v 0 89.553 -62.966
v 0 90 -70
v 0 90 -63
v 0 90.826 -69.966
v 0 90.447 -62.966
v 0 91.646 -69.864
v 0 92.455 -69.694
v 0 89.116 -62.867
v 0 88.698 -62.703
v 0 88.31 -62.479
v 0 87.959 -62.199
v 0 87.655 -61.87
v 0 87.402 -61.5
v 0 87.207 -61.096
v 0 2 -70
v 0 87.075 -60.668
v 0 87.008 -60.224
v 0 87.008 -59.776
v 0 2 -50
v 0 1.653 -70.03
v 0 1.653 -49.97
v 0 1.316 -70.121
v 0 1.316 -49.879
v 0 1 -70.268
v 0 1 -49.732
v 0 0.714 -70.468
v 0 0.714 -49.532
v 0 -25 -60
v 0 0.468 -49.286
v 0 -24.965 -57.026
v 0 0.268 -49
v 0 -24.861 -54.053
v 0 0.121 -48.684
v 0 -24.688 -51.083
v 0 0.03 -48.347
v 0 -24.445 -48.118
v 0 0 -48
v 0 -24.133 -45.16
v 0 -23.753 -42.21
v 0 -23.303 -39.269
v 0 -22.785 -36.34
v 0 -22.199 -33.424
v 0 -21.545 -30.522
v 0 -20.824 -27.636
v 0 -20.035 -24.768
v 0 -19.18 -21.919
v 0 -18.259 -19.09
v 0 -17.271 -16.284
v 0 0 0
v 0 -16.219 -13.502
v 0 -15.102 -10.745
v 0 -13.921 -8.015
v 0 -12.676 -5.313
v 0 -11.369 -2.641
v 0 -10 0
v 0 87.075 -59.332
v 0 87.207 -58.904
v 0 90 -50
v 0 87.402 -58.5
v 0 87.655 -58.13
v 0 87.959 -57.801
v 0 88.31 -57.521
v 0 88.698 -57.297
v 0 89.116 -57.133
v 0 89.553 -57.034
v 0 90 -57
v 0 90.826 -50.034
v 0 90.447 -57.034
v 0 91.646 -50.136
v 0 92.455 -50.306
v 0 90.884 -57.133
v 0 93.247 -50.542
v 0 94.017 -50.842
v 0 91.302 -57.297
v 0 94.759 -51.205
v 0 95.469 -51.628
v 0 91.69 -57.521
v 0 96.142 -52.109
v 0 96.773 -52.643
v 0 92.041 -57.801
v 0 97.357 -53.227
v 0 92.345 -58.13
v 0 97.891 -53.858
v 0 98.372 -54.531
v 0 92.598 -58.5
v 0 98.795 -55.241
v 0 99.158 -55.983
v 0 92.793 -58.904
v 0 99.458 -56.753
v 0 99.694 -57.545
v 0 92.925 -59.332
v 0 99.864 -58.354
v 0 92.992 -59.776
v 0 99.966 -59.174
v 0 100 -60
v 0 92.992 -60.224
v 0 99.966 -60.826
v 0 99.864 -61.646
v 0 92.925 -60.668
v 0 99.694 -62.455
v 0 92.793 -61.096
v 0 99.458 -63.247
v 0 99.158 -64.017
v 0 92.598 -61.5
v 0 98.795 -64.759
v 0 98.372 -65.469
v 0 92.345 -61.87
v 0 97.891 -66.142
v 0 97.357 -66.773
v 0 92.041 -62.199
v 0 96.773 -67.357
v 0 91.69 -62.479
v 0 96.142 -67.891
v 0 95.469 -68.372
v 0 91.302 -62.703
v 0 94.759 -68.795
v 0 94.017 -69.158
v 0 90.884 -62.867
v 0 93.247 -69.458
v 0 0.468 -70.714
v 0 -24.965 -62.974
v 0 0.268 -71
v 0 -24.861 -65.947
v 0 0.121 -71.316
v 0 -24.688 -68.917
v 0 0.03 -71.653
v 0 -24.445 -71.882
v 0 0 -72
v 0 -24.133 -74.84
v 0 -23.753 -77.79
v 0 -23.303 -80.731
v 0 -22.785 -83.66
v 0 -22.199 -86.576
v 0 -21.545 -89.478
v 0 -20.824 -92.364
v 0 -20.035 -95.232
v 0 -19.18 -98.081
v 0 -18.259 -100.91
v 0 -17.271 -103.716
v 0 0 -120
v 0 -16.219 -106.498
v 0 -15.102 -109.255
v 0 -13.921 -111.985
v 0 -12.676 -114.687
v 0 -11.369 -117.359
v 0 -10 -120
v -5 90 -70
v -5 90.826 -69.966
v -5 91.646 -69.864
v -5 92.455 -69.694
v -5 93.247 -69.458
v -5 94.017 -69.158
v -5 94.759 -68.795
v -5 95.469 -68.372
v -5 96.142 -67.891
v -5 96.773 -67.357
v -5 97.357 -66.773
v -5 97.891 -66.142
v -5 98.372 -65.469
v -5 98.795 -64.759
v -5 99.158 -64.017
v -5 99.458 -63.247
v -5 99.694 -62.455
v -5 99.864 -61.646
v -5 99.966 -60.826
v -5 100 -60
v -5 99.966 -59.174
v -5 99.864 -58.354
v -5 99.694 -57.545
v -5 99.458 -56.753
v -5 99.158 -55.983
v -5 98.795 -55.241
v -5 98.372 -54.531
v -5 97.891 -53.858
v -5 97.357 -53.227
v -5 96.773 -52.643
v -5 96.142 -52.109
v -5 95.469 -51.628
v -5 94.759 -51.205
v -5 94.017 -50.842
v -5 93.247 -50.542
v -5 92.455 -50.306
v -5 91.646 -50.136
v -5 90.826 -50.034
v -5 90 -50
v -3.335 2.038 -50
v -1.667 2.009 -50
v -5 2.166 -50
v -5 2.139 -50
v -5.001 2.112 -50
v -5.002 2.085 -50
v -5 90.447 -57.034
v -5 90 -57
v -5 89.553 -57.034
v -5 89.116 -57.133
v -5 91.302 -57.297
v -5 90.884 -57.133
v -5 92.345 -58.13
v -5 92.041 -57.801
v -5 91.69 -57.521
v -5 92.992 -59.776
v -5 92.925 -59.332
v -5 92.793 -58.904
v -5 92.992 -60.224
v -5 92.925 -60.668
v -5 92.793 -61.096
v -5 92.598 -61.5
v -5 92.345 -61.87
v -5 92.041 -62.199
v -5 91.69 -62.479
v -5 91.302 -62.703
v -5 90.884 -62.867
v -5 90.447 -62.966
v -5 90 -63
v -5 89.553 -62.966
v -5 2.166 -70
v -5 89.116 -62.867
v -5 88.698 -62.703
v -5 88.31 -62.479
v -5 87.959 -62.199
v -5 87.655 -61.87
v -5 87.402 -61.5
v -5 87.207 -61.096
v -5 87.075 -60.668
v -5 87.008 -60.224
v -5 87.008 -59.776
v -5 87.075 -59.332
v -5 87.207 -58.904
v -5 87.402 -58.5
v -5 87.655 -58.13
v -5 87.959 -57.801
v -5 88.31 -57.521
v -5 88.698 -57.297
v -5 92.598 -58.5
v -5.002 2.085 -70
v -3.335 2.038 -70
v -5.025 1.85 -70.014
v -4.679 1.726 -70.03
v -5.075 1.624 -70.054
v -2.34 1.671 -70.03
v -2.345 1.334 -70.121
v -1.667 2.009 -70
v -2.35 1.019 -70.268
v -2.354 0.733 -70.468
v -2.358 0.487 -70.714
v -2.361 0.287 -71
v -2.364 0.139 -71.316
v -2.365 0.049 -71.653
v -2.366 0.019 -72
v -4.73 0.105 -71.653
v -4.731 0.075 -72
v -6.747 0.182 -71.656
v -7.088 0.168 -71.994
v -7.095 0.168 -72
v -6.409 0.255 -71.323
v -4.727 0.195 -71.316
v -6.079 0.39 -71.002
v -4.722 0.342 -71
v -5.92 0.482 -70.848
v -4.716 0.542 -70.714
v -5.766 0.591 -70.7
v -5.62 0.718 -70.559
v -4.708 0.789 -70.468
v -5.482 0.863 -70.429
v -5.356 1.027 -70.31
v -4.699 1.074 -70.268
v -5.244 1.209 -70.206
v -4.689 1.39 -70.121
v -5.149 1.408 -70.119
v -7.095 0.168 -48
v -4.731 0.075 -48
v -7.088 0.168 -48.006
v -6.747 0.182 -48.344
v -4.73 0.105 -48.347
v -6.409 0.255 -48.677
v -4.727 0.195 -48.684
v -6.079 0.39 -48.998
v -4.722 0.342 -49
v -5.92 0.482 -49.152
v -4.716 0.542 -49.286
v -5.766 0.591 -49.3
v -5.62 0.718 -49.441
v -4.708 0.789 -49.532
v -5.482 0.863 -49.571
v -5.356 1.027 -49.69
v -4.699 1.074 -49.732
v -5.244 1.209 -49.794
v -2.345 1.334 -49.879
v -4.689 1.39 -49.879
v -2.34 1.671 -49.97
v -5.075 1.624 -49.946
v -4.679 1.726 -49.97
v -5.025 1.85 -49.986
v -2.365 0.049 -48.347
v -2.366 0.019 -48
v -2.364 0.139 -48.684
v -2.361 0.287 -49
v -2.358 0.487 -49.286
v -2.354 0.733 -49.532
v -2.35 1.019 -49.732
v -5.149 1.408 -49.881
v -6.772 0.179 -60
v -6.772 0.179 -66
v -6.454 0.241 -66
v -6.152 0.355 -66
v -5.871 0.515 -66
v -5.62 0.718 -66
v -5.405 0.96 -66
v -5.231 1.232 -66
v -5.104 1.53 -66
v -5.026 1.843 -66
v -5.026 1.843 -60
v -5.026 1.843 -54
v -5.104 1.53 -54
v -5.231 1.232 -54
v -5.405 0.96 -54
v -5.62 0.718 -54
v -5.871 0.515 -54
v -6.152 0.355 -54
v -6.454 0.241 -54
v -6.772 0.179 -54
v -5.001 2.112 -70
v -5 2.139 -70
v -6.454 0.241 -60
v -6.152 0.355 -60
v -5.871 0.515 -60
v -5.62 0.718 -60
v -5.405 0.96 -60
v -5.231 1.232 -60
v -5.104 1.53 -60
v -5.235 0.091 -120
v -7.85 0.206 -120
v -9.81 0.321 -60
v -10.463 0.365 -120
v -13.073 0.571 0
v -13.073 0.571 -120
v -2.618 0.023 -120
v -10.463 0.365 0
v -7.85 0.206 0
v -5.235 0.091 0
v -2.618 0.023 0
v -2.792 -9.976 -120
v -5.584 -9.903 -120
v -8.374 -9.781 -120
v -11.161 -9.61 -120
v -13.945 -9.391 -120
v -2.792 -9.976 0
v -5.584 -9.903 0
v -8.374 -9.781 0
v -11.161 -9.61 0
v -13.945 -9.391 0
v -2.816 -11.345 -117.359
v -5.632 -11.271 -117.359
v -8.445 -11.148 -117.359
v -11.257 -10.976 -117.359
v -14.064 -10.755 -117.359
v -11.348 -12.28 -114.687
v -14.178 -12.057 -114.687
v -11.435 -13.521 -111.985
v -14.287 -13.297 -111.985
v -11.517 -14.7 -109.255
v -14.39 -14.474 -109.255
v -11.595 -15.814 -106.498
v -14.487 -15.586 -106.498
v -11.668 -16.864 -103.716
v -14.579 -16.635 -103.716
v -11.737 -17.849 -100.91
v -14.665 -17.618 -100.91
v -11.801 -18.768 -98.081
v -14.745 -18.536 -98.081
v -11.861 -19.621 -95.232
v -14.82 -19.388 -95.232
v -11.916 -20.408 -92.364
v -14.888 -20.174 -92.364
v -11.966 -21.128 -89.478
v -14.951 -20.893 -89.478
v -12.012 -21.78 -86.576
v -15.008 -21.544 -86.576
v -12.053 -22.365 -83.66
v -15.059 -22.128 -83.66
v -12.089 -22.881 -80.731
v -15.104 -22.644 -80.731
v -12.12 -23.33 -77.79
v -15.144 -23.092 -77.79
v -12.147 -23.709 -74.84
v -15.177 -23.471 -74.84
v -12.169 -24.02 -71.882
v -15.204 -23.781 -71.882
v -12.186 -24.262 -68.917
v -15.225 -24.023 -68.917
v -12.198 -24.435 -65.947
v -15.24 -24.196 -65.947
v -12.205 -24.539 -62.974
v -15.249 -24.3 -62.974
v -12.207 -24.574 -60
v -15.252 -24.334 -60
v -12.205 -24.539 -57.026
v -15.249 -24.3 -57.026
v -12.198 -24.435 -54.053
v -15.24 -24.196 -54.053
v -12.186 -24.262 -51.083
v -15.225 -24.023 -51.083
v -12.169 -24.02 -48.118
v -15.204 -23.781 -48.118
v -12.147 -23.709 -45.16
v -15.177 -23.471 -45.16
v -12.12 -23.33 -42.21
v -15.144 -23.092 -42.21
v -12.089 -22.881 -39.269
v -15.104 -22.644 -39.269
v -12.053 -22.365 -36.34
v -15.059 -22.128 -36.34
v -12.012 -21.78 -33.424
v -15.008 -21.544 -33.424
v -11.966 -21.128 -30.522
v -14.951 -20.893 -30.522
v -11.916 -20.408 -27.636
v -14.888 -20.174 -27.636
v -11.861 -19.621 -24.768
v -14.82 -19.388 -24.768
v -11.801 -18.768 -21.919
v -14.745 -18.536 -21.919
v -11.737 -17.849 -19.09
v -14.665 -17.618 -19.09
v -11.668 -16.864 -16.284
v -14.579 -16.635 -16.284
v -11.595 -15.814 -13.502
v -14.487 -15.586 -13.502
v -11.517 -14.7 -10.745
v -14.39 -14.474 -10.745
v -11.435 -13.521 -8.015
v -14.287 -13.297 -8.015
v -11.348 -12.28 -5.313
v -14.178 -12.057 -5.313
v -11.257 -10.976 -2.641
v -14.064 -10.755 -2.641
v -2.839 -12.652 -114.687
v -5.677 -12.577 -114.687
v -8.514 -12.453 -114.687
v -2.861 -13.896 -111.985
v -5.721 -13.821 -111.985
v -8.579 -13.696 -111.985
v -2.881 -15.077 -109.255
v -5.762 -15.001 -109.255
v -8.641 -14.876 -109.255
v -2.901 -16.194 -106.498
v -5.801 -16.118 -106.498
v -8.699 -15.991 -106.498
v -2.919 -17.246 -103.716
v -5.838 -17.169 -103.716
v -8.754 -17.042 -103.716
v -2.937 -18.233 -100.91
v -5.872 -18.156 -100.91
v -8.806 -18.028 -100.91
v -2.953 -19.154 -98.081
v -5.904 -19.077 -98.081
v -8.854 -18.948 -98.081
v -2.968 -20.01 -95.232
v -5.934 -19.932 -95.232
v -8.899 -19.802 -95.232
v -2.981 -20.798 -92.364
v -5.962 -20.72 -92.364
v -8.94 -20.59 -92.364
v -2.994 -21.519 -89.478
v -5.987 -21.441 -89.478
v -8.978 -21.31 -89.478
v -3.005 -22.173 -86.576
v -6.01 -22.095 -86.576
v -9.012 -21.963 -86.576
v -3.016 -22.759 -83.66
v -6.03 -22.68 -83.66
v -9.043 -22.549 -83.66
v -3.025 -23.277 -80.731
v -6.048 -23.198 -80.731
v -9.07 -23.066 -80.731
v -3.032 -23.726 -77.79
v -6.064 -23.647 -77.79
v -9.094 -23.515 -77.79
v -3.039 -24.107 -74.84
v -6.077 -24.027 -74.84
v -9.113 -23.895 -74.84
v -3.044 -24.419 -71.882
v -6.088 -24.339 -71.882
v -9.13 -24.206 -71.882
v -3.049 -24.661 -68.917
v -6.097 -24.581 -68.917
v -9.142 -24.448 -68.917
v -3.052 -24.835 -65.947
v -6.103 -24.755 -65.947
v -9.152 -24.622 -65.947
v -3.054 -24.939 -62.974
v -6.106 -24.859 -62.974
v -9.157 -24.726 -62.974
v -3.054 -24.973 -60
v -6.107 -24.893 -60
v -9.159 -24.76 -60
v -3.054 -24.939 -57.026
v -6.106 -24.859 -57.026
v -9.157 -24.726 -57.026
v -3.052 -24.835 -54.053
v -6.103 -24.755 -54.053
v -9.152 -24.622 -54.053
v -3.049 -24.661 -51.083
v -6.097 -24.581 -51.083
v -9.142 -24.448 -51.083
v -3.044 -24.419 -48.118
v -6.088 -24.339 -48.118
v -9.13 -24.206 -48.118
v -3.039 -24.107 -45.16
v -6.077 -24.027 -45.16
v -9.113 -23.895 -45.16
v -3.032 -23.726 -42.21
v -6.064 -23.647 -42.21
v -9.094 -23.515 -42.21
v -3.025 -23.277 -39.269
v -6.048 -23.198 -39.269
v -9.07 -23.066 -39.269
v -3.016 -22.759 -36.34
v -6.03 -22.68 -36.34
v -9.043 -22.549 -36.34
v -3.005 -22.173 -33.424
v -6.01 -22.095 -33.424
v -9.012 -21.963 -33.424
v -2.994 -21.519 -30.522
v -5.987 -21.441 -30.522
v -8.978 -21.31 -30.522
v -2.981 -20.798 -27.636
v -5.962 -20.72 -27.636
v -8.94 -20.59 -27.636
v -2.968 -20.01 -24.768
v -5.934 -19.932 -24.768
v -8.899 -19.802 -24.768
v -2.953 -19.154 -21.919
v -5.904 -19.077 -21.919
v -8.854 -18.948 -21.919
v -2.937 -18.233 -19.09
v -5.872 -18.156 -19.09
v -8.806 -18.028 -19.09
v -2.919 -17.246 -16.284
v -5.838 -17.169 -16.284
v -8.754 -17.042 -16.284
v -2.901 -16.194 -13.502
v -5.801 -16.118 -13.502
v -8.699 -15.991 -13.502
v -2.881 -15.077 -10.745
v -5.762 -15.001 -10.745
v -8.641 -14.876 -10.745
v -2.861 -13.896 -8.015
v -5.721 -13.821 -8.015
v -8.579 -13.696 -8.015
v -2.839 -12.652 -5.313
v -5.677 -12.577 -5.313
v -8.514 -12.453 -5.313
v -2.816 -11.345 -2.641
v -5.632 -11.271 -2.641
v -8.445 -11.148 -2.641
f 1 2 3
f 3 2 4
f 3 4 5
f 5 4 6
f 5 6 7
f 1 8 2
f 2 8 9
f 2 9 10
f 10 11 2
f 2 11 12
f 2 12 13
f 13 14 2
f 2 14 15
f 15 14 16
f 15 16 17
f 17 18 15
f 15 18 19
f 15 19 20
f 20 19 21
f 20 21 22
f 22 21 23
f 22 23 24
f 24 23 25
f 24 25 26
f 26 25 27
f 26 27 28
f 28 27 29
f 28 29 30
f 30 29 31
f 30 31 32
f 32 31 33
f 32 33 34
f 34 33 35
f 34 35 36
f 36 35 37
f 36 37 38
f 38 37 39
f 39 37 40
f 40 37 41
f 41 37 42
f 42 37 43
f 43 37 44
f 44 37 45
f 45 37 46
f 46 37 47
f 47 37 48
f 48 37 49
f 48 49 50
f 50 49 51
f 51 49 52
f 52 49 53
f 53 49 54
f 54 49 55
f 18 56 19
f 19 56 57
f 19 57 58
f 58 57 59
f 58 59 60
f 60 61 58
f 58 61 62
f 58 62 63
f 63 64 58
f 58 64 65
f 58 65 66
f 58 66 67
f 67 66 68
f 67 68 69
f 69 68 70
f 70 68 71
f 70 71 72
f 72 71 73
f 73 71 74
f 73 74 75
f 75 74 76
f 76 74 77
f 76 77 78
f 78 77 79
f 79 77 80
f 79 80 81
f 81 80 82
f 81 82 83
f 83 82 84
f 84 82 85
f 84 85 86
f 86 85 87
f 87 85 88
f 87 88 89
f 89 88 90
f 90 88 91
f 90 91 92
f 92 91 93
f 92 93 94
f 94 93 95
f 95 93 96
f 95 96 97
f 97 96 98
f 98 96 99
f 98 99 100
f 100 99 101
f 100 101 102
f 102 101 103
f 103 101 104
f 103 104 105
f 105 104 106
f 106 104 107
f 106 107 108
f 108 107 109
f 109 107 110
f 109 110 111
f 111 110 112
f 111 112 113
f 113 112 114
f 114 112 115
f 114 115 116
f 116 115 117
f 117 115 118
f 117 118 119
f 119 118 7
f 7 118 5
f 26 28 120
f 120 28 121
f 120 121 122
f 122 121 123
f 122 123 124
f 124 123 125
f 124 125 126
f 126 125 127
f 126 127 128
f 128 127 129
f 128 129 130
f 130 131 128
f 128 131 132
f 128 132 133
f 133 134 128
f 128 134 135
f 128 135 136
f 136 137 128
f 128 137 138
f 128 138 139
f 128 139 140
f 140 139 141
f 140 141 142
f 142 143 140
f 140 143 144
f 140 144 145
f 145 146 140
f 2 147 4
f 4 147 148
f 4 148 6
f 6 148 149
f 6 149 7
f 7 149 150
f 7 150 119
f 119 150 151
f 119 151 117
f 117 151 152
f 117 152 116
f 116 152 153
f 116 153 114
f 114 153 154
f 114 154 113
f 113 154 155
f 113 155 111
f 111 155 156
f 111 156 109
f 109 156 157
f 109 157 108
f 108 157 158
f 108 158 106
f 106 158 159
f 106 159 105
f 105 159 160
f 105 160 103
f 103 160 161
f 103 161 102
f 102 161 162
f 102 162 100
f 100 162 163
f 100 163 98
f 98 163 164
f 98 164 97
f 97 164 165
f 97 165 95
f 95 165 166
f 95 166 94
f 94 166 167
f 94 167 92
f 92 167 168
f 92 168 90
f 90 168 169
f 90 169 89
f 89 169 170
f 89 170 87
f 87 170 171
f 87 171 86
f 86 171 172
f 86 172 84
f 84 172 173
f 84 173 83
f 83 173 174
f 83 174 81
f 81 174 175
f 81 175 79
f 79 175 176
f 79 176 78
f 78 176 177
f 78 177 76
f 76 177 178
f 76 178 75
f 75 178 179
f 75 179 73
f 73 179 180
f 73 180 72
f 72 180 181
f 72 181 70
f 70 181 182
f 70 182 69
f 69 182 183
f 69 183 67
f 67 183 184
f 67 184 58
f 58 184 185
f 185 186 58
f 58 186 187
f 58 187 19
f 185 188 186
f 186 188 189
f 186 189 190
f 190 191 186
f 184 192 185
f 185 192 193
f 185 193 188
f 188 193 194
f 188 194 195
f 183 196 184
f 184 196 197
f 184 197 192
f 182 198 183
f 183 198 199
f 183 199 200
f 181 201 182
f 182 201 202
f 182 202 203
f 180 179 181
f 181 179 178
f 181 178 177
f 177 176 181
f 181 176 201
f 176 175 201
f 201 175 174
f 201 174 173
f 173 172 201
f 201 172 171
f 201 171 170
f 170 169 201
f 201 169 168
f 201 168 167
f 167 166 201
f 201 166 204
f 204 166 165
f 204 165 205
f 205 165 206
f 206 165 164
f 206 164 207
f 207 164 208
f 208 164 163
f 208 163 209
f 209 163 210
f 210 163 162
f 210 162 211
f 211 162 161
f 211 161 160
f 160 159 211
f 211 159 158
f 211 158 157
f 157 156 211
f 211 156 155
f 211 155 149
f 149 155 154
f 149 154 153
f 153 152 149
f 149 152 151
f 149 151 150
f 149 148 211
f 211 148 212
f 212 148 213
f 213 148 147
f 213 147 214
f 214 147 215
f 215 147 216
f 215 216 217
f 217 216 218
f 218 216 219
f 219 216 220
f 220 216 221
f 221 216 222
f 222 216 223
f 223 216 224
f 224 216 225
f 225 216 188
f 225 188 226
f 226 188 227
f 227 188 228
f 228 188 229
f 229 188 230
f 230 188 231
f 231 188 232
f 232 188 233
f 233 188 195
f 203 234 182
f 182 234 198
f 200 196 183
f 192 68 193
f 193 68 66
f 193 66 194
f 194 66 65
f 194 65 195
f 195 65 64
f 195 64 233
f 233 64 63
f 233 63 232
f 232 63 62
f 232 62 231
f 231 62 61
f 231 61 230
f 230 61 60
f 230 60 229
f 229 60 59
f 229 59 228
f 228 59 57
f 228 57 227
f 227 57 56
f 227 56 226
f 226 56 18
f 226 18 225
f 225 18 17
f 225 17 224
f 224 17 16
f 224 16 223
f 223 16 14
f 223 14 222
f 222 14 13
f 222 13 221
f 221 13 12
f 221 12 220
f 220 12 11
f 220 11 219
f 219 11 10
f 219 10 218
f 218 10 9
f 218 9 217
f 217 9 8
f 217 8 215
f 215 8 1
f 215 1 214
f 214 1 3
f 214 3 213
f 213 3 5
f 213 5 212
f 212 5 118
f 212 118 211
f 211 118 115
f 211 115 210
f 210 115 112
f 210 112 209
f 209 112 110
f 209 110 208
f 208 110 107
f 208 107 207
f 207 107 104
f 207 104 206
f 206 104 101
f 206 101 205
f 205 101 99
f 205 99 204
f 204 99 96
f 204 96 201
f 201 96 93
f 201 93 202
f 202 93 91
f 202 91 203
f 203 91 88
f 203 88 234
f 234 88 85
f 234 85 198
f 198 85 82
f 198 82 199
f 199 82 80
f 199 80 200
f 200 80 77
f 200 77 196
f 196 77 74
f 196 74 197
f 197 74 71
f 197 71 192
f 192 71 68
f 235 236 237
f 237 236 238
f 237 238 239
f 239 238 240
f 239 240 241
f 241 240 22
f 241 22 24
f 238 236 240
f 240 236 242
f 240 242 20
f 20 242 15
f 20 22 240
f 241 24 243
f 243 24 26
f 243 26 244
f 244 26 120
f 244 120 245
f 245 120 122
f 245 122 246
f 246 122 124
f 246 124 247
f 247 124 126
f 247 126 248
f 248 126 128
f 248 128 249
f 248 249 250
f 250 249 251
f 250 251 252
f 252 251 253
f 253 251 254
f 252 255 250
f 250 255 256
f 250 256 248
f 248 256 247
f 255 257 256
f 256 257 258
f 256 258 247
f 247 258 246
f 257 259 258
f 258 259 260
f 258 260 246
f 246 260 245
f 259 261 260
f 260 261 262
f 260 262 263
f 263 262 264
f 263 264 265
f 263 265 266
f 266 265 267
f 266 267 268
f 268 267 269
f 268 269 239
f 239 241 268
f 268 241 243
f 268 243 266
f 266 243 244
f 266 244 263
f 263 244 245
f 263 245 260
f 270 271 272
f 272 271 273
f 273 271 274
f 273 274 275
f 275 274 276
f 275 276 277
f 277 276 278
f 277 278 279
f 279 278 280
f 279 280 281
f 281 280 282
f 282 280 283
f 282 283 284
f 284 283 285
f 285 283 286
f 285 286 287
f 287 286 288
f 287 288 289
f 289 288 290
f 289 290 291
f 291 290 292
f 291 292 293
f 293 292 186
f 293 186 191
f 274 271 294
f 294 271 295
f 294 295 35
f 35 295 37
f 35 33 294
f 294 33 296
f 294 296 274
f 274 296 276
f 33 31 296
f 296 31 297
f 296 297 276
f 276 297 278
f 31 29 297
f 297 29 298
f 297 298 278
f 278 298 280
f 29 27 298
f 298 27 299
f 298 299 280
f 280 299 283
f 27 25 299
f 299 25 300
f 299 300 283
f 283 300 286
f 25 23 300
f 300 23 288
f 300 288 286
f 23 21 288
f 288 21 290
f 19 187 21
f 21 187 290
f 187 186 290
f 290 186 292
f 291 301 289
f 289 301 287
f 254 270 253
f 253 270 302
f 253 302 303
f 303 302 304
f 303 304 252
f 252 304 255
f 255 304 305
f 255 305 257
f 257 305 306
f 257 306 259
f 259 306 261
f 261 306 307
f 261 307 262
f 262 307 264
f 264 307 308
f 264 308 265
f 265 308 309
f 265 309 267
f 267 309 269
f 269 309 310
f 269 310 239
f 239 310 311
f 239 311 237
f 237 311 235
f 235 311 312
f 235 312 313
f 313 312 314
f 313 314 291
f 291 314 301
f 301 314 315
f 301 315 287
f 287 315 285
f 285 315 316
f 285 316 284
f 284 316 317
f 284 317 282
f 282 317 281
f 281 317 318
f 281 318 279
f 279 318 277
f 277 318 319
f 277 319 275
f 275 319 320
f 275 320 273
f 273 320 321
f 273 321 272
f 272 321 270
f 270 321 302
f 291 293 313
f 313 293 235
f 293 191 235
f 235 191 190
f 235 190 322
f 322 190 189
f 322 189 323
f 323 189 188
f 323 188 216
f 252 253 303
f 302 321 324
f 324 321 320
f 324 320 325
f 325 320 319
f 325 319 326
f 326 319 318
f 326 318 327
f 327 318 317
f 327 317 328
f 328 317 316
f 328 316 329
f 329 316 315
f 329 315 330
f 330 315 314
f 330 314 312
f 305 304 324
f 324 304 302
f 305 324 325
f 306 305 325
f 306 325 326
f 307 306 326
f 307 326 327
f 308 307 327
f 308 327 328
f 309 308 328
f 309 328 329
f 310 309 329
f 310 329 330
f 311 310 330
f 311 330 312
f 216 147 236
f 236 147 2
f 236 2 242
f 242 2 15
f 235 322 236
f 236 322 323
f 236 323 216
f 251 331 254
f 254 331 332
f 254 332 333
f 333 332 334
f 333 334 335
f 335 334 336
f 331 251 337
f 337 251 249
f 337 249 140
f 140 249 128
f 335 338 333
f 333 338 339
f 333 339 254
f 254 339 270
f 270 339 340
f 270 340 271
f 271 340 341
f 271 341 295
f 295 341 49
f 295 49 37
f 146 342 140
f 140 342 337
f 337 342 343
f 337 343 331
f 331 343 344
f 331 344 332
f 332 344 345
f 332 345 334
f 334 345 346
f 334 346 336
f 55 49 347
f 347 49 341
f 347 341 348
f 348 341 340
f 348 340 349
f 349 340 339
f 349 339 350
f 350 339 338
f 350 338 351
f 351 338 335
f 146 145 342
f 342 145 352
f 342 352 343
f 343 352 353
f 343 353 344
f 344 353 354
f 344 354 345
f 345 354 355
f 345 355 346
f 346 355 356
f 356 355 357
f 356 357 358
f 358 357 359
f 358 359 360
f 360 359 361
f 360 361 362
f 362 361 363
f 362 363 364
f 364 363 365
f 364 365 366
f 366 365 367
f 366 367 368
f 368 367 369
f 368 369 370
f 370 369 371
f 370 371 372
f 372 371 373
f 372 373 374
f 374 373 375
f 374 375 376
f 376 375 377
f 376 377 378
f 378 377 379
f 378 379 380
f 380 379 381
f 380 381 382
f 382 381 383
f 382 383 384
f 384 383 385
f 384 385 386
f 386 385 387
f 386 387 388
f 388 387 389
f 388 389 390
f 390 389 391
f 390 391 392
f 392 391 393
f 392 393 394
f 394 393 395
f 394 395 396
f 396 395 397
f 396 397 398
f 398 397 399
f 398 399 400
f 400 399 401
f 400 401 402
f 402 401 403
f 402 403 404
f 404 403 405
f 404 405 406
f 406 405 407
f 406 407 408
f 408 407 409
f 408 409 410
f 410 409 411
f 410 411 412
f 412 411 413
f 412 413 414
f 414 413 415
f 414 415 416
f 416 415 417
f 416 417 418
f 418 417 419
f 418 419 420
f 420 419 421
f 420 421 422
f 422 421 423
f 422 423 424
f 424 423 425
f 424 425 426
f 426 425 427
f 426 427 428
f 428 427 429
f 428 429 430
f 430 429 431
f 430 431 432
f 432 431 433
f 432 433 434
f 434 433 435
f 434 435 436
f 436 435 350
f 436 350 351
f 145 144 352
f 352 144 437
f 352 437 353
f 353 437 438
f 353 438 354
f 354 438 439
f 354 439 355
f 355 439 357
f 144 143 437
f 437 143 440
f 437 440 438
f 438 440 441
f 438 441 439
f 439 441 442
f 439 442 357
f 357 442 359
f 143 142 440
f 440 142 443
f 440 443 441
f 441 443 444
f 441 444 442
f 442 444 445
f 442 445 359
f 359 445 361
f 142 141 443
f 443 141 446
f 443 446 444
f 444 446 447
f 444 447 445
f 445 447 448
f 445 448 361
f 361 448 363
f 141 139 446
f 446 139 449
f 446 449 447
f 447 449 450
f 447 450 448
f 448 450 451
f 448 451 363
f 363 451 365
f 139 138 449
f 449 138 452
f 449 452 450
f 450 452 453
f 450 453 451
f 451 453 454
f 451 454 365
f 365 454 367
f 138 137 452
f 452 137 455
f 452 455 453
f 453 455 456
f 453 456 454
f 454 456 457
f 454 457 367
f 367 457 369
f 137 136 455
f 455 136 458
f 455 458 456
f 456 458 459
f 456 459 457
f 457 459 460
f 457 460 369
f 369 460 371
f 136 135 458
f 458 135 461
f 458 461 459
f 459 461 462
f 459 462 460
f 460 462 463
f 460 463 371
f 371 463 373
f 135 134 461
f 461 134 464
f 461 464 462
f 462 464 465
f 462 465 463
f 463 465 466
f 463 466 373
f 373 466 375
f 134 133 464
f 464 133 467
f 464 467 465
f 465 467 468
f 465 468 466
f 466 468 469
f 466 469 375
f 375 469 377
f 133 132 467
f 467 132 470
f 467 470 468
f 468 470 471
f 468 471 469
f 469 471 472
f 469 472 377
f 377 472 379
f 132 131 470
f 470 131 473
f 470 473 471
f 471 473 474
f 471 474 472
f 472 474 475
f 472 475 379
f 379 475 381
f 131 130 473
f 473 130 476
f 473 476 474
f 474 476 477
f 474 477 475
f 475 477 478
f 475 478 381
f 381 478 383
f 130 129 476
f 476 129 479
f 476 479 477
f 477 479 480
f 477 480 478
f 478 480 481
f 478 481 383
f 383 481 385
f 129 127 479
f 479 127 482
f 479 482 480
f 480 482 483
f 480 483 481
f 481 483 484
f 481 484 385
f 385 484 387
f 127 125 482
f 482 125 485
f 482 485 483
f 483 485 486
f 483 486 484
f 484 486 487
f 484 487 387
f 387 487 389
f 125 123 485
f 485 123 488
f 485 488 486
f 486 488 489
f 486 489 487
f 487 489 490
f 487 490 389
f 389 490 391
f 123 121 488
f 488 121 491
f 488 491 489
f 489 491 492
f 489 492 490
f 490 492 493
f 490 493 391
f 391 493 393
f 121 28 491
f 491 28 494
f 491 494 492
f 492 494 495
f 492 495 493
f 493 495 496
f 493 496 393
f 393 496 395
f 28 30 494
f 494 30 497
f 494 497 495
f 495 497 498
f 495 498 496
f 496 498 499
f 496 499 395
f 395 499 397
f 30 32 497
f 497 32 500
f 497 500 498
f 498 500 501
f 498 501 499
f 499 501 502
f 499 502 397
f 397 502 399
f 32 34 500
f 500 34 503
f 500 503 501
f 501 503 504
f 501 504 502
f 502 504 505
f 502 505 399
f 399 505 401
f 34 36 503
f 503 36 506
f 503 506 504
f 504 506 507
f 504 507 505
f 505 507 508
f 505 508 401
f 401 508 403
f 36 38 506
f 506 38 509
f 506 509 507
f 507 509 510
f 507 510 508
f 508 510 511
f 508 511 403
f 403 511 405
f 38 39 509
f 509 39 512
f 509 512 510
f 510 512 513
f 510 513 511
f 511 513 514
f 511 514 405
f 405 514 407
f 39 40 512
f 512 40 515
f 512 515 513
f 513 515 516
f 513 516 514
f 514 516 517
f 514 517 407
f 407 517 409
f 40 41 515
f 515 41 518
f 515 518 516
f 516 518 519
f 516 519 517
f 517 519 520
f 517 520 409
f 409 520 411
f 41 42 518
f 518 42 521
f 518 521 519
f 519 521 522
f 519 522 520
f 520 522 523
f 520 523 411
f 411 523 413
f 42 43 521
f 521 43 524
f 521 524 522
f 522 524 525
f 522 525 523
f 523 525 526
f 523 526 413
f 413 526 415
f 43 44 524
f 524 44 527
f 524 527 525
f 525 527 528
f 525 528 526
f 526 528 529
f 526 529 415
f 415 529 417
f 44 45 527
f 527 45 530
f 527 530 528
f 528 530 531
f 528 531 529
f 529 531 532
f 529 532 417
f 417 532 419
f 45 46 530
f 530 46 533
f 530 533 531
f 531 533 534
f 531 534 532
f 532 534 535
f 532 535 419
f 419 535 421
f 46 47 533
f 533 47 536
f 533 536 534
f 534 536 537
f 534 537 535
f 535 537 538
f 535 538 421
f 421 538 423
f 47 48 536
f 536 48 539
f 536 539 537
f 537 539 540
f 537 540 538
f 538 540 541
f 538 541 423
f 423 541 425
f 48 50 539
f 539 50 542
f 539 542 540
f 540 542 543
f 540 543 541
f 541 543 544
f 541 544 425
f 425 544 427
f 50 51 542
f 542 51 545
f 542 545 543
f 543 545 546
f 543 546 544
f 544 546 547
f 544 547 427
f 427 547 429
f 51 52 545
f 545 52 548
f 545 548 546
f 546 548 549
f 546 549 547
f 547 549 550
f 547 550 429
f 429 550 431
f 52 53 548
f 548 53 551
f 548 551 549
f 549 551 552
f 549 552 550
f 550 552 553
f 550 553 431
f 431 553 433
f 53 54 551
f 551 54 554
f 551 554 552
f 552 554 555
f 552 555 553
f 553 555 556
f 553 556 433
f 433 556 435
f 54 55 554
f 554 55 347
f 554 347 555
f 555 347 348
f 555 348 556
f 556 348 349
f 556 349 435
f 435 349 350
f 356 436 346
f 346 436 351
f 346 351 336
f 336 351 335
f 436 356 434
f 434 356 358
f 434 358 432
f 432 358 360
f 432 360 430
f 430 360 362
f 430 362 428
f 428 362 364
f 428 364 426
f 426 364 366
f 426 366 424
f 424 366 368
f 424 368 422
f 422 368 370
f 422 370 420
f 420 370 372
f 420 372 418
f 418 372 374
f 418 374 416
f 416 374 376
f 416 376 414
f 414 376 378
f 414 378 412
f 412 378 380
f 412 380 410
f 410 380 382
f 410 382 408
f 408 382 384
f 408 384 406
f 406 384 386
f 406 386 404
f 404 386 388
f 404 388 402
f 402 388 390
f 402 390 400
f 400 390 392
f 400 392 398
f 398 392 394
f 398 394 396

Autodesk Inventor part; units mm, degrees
ref_plane "YZ Plane" through (0, 0, 0) normal (1, 0, 0) x (0, 1, 0)
ref_plane "XZ Plane" through (0, 0, 0) normal (0, 1, 0) x (-1, 0, 0)
ref_plane "XY Plane" through (0, 0, 0) normal (0, 0, 1) x (1, 0, 0)
sketch "スケッチ2" plane through (0, 0, 0) normal (1, 0, 0) x (0, 1, 0)
  line L0 (0, 0) -> (0, -120)
  line L1 (0, -120) -> (-10, -120)
  line L2 (0, 0) -> (-10, 0)
  line L3 (0, -60) -> (-25, -60)
  arc A0 (-10, 0) -> (-10, -120) centre (102.5, -60) ccw
  line L4 (150, 222.8516) -> (150, -392.0935)
  dimension "d14" = 120
  dimension "d15" = 10
  dimension "d16" = 10
  dimension "d17" = 25
  dimension "d18" = 300
revolve "回転2" add sketch "スケッチ2" angle 5 about axis through (0, 150, 222.8516) along (0, 0, -1)
sketch "スケッチ3" plane through (0, -10, -120) normal (1, 0, 0) x (0, 0, -1)
  line L0 (-70, 110) -> (-50, 110)
  line L1 (-50, 110) -> (-50, 10)
  line L2 (-50, 10) -> (-70, 10)
  line L3 (-70, 10) -> (-70, 110)
  line L4 (0, 0) -> (0, 10) projected
  line L5 (0, 10) -> (-120, 10) projected
  dimension "d20" = 100
  dimension "d21" = 20
  dimension "d22" = 50
  dimension "d23" = 0
extrude "押し出し1" add sketch "スケッチ3" against normal blind 5
fillet "フィレット2" radius 2 3 edges at (-2.5003, 0.0208, -50) (-5, 0.0834, -60) (-2.5003, 0.0208, -70)
sketch "スケッチ4" plane through (0, -10, -120) normal (1, 0, 0) x (0, 0, -1)
  line L0 (-50, 12) -> (-50, 110) projected
  line L1 (-50, 110) -> (-70, 110) projected
  point P0 (-120, 10)
  point P1 (-60, 100)
  dimension "d27" = 10
  dimension "d28" = 10
hole "穴1" at (0, 90, -60) direction (-1, 0, 0) diameter 6 end through all
fillet "フィレット3" radius 10 2 edges at (-2.5, 100, -50) (-2.5, 100, -70)
properties part number "受動歩行"
